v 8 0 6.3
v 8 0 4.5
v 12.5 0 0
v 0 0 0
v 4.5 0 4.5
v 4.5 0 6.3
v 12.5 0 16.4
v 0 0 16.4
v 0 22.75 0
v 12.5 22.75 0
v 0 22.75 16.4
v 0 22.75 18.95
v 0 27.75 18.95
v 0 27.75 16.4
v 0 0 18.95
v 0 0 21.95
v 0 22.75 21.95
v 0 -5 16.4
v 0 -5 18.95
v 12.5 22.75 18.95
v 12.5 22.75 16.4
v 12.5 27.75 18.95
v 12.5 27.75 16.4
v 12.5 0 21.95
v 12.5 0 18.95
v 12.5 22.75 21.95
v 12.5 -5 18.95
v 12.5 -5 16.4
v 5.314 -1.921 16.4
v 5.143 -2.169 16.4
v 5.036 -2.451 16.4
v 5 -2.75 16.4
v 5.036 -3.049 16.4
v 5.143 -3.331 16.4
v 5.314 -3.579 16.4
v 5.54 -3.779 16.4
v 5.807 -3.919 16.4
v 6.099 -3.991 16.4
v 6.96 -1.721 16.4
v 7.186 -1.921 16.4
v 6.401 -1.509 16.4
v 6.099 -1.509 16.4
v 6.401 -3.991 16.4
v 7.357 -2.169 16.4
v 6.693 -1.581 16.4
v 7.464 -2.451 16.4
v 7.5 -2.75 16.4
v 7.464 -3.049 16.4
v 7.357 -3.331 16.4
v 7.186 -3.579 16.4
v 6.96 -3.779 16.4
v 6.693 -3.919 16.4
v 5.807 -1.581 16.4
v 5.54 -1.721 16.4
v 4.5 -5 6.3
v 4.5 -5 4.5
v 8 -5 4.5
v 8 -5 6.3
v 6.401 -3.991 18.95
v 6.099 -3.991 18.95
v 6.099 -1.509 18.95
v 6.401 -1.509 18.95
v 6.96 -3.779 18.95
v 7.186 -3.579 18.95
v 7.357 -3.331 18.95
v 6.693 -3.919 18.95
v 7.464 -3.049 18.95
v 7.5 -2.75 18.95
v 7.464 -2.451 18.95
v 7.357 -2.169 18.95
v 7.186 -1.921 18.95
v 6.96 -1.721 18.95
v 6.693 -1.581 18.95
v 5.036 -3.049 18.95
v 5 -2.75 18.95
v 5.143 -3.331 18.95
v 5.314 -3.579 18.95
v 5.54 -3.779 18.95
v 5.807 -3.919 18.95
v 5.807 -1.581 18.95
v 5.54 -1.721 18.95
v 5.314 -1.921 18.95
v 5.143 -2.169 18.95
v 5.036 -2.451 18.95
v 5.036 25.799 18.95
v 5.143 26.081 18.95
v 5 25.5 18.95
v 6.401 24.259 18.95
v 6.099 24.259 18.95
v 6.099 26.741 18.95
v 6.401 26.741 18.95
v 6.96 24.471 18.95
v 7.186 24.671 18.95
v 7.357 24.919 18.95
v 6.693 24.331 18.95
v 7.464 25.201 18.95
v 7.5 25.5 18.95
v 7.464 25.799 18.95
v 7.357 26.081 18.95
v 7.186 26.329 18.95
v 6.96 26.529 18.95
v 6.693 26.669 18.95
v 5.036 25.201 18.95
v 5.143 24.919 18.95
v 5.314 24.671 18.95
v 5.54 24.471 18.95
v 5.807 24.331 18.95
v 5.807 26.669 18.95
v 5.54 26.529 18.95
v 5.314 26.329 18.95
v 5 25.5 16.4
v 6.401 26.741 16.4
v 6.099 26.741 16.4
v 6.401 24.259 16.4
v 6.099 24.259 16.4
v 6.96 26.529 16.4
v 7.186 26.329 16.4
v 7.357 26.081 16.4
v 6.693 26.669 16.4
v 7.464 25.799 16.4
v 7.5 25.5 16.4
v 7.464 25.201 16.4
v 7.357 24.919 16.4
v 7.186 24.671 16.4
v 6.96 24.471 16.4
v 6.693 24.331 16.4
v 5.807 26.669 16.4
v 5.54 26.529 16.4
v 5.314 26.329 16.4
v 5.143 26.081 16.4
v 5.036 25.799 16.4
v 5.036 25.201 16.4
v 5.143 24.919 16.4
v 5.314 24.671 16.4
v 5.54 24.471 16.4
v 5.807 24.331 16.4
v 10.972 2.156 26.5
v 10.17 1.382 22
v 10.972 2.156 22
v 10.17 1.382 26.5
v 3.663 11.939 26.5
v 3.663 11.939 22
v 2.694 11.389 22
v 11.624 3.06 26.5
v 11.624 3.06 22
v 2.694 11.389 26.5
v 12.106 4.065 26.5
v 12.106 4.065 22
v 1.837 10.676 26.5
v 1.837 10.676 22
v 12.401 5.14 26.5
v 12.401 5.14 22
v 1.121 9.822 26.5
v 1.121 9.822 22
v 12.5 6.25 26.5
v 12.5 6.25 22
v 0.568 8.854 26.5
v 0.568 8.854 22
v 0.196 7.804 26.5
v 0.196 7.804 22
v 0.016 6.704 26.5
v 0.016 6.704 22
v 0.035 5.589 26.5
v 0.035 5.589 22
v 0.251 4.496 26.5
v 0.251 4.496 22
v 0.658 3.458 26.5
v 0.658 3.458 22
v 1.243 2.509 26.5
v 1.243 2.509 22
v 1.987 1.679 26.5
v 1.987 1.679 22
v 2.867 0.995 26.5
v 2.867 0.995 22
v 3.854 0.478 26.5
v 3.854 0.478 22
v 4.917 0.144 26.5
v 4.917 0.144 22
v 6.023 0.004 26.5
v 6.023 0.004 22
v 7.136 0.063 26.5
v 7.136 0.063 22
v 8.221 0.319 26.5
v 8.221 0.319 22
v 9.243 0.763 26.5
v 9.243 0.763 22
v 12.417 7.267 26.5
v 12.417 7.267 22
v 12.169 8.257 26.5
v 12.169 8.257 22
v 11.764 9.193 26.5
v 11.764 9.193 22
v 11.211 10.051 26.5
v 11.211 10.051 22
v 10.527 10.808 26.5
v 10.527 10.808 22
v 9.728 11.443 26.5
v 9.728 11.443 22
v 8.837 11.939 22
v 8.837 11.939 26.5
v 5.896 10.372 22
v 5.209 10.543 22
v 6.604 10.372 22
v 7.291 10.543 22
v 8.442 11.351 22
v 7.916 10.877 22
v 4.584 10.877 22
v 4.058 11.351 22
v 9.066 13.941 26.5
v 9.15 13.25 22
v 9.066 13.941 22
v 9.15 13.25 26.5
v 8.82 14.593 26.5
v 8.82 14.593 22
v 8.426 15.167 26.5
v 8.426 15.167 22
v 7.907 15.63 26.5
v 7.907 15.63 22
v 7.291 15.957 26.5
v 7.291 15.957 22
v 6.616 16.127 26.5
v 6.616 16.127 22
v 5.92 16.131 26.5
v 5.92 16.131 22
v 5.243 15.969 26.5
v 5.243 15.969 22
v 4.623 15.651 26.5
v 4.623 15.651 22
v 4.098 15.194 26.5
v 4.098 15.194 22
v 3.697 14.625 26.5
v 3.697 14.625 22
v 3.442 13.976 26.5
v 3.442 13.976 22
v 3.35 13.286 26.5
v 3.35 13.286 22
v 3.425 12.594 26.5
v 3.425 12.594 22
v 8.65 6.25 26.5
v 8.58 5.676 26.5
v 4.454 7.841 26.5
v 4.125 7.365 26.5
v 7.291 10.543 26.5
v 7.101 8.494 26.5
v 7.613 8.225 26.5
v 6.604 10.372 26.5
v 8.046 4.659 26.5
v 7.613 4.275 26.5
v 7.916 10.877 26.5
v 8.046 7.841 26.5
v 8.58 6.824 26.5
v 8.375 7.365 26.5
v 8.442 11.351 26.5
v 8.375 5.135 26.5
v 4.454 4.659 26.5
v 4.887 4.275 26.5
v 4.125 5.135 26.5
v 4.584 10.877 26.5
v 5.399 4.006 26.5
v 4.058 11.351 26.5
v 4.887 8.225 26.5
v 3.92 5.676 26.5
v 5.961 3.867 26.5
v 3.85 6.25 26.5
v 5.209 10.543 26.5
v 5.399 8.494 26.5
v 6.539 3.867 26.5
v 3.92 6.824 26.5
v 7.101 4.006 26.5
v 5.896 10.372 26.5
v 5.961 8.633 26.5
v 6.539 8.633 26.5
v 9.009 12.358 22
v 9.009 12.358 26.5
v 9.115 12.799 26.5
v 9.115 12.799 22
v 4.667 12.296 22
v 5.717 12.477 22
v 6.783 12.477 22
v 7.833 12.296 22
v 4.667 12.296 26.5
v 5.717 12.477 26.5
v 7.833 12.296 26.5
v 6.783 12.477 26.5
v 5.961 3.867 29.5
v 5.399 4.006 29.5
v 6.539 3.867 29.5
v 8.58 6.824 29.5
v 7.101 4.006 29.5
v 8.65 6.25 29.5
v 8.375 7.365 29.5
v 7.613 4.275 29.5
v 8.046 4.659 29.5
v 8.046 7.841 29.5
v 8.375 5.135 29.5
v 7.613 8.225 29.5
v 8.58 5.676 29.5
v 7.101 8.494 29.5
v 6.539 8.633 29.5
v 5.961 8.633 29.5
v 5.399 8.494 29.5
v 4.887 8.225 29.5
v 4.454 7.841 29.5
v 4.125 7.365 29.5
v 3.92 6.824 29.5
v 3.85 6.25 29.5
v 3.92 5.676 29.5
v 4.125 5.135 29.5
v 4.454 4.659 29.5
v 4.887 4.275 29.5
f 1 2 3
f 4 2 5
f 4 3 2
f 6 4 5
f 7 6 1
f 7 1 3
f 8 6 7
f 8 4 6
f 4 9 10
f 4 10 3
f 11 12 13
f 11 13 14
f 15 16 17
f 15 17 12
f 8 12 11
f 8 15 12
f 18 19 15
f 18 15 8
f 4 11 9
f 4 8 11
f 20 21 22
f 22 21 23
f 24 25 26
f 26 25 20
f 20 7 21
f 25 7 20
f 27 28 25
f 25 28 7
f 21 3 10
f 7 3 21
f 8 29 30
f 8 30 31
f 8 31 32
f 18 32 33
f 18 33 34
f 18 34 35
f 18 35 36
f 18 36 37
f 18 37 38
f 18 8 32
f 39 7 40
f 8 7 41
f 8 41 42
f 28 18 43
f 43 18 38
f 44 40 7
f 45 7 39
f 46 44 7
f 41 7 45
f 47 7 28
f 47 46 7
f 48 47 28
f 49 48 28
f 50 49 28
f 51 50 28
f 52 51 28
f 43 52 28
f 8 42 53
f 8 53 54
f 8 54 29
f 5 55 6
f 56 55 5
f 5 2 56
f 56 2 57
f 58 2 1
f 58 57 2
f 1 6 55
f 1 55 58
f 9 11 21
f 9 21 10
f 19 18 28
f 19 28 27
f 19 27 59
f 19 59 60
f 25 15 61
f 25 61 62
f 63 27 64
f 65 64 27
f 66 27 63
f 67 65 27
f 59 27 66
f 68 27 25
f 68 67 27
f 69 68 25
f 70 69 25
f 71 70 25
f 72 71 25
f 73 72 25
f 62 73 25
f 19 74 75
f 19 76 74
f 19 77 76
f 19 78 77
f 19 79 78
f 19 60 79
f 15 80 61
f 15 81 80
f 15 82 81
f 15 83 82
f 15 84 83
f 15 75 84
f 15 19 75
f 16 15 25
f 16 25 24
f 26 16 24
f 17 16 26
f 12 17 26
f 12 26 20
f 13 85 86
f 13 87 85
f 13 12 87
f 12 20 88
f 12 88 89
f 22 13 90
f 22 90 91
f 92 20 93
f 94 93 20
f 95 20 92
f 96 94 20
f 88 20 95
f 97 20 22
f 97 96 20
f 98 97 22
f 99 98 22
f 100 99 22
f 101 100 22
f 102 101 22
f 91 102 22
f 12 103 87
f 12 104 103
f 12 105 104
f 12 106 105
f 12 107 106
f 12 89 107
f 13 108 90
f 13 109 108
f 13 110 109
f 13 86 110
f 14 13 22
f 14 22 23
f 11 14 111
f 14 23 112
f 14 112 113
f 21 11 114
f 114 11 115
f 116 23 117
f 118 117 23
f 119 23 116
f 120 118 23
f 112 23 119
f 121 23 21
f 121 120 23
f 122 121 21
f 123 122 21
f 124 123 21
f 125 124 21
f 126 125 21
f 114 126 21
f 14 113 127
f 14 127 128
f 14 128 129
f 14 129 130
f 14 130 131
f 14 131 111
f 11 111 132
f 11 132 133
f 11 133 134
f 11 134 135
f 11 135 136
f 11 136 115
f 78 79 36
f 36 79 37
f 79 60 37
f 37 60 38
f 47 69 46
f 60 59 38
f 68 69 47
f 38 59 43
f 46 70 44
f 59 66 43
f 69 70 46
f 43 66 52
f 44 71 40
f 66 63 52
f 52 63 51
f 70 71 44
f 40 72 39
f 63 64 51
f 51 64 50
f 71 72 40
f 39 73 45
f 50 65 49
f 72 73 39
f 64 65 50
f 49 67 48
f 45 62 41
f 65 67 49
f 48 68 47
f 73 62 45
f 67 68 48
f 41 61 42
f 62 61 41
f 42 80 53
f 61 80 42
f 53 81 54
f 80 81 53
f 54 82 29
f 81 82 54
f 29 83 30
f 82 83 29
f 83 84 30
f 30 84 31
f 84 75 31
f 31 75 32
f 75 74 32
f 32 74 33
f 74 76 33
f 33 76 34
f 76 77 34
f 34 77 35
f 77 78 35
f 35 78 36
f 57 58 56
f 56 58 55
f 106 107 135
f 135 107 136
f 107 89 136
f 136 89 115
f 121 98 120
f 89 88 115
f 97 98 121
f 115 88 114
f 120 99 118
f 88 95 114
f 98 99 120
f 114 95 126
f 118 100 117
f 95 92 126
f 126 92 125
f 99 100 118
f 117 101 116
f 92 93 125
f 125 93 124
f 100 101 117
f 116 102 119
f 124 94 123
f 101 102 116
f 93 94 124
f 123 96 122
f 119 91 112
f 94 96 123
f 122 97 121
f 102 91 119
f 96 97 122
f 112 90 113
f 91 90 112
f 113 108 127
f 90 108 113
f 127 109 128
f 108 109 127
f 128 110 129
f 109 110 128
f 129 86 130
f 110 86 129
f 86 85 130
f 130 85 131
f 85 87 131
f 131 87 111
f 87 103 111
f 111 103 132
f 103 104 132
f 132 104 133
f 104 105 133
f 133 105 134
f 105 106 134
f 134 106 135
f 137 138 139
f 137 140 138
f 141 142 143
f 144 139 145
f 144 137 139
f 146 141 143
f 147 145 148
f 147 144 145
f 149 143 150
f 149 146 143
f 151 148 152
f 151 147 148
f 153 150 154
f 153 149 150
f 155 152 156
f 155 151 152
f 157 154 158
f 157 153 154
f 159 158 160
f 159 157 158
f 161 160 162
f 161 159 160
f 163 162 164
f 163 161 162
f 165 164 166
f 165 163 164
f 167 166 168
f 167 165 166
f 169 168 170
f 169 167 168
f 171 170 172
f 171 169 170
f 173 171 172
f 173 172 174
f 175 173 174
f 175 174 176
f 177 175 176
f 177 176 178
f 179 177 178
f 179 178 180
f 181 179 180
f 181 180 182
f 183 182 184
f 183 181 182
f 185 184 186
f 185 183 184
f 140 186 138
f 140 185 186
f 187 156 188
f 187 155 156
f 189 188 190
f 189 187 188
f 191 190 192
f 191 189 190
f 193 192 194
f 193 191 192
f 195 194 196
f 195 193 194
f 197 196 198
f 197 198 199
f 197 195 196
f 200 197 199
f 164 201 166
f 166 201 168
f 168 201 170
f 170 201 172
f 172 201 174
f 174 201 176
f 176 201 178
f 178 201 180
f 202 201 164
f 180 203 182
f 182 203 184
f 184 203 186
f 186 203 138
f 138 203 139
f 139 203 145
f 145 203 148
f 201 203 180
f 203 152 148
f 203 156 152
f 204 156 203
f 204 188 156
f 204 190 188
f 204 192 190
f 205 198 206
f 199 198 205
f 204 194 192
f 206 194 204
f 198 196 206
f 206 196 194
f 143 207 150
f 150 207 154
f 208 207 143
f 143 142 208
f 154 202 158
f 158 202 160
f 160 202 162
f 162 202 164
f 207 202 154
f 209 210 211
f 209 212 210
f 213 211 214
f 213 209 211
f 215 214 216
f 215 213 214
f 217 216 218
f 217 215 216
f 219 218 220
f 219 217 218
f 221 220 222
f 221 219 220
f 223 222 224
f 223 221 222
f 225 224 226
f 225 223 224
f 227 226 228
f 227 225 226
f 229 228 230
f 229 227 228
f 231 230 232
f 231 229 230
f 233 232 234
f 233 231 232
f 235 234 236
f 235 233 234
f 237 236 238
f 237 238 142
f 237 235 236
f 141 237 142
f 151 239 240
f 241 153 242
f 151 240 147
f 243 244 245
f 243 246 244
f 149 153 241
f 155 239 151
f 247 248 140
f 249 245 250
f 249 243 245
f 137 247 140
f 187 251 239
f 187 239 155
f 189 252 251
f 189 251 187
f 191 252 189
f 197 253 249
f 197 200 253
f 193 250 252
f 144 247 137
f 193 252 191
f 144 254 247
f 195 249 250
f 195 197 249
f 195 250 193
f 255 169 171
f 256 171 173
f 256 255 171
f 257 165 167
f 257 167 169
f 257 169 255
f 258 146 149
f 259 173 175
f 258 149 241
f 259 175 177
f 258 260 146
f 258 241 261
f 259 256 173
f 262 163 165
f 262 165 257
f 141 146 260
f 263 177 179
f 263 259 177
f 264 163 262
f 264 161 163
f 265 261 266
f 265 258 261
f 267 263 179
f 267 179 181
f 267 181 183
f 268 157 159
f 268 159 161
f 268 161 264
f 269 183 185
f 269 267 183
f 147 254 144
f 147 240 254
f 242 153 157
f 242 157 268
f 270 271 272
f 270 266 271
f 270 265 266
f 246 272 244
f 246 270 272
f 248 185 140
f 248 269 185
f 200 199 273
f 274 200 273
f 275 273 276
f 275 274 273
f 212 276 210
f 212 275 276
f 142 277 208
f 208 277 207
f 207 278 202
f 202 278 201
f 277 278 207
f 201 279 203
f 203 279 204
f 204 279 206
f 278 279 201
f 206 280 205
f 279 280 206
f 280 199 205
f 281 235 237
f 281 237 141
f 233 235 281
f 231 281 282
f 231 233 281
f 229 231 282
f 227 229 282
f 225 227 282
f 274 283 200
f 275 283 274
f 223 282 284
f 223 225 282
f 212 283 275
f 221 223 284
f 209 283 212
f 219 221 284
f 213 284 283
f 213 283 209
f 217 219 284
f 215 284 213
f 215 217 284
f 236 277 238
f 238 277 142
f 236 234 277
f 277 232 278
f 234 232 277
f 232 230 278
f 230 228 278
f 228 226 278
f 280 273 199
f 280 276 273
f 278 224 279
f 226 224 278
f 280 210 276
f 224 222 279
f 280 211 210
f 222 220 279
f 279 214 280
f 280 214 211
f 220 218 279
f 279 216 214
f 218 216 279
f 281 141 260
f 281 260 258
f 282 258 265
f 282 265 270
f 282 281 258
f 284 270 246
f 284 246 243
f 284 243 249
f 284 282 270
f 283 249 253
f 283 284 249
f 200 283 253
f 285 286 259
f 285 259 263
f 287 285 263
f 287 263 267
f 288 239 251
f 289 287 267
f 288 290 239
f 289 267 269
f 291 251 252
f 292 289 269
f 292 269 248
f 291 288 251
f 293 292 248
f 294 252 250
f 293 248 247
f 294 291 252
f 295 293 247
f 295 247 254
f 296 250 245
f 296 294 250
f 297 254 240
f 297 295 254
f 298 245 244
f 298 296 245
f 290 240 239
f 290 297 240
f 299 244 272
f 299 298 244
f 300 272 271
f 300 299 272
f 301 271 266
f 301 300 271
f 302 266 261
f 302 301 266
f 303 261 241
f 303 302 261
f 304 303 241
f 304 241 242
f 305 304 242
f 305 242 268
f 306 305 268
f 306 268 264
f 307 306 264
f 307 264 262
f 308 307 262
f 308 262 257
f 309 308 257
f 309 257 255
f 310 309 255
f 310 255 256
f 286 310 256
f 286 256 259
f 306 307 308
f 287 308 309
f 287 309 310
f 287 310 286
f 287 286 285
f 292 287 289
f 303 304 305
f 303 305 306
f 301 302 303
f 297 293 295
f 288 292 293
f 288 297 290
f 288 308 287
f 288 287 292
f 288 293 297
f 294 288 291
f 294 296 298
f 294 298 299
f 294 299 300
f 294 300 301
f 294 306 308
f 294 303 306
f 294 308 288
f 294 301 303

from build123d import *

# Parameters (mm, degrees)
BOX_W             = 3.5
BOX_H             = 5
BOX_DEPTH         = 1.8
CYLINDER003_R     = 1.25
CYLINDER003_DEPTH = 5
CYLINDER004_R     = 1.25
CYLINDER004_DEPTH = 5
CYLINDER_R        = 6.25
CYLINDER_DEPTH    = 4.5
CYLINDER001_R     = 2.9
CYLINDER001_DEPTH = 4.5
CYLINDER002_R     = 2.4
CYLINDER002_DEPTH = 3
PAD_DEPTH         = 12.5


with BuildPart() as cube:
    # Box → Box (new body)
    with BuildSketch(Plane(origin=(4.5, -5, 4.5), x_dir=(1, 0, 0), z_dir=(0, 0, 1))):
        with Locations((1.75, 2.5)):
            Rectangle(BOX_W, BOX_H)
    extrude(amount=BOX_DEPTH)


with BuildPart() as cylinder003:
    # Cylinder003 → Cylinder003 (new body)
    with BuildSketch(Plane(origin=(6.25, -2.75, 15), x_dir=(1, 0, 0), z_dir=(0, 0, 1))):
        Circle(CYLINDER003_R)
    extrude(amount=CYLINDER003_DEPTH)


with BuildPart() as fusion001:
    # Cylinder004 → Cylinder004 (new body)
    with BuildSketch(Plane(origin=(6.25, 25.5, 15), x_dir=(1, 0, 0), z_dir=(0, 0, 1))):
        Circle(CYLINDER004_R)
    extrude(amount=CYLINDER004_DEPTH)

    # Fusion001: union Cylinder003
    add(cylinder003.part)


with BuildPart() as cylinder:
    # Cylinder → Cylinder (new body)
    with BuildSketch(Plane(origin=(6.25, 6.25, 22), x_dir=(1, 0, 0), z_dir=(0, 0, 1))):
        Circle(CYLINDER_R)
    extrude(amount=CYLINDER_DEPTH)


with BuildPart() as cylinder001:
    # Cylinder001 → Cylinder001 (new body)
    with BuildSketch(Plane(origin=(6.25, 13.25, 22), x_dir=(1, 0, 0), z_dir=(0, 0, 1))):
        Circle(CYLINDER001_R)
    extrude(amount=CYLINDER001_DEPTH)


with BuildPart() as cylinder002:
    # Cylinder002 → Cylinder002 (new body)
    with BuildSketch(Plane(origin=(6.25, 6.25, 26.5), x_dir=(1, 0, 0), z_dir=(0, 0, 1))):
        Circle(CYLINDER002_R)
    extrude(amount=CYLINDER002_DEPTH)


with BuildPart() as microservo:
    # Sketch → Pad (new body)
    with BuildSketch(Plane.YZ):
        Polygon((0, 0), (0, 16.4), (-5, 16.4), (-5, 18.95), (0, 18.95), (0, 21.95), (22.75, 21.95), (22.75, 18.95), (27.75, 18.95), (27.75, 16.4), (22.75, 16.4), (22.75, 0), align=None)
    extrude(amount=PAD_DEPTH)

    # Fusion: union Cylinder, Cylinder001, Cylinder002
    add(cylinder.part)
    add(cylinder001.part)
    add(cylinder002.part)

    # Cut: cut Fusion001
    add(fusion001.part, mode=Mode.SUBTRACT)

    # Fusion002: union Cube
    add(cube.part)


solid = microservo.part
